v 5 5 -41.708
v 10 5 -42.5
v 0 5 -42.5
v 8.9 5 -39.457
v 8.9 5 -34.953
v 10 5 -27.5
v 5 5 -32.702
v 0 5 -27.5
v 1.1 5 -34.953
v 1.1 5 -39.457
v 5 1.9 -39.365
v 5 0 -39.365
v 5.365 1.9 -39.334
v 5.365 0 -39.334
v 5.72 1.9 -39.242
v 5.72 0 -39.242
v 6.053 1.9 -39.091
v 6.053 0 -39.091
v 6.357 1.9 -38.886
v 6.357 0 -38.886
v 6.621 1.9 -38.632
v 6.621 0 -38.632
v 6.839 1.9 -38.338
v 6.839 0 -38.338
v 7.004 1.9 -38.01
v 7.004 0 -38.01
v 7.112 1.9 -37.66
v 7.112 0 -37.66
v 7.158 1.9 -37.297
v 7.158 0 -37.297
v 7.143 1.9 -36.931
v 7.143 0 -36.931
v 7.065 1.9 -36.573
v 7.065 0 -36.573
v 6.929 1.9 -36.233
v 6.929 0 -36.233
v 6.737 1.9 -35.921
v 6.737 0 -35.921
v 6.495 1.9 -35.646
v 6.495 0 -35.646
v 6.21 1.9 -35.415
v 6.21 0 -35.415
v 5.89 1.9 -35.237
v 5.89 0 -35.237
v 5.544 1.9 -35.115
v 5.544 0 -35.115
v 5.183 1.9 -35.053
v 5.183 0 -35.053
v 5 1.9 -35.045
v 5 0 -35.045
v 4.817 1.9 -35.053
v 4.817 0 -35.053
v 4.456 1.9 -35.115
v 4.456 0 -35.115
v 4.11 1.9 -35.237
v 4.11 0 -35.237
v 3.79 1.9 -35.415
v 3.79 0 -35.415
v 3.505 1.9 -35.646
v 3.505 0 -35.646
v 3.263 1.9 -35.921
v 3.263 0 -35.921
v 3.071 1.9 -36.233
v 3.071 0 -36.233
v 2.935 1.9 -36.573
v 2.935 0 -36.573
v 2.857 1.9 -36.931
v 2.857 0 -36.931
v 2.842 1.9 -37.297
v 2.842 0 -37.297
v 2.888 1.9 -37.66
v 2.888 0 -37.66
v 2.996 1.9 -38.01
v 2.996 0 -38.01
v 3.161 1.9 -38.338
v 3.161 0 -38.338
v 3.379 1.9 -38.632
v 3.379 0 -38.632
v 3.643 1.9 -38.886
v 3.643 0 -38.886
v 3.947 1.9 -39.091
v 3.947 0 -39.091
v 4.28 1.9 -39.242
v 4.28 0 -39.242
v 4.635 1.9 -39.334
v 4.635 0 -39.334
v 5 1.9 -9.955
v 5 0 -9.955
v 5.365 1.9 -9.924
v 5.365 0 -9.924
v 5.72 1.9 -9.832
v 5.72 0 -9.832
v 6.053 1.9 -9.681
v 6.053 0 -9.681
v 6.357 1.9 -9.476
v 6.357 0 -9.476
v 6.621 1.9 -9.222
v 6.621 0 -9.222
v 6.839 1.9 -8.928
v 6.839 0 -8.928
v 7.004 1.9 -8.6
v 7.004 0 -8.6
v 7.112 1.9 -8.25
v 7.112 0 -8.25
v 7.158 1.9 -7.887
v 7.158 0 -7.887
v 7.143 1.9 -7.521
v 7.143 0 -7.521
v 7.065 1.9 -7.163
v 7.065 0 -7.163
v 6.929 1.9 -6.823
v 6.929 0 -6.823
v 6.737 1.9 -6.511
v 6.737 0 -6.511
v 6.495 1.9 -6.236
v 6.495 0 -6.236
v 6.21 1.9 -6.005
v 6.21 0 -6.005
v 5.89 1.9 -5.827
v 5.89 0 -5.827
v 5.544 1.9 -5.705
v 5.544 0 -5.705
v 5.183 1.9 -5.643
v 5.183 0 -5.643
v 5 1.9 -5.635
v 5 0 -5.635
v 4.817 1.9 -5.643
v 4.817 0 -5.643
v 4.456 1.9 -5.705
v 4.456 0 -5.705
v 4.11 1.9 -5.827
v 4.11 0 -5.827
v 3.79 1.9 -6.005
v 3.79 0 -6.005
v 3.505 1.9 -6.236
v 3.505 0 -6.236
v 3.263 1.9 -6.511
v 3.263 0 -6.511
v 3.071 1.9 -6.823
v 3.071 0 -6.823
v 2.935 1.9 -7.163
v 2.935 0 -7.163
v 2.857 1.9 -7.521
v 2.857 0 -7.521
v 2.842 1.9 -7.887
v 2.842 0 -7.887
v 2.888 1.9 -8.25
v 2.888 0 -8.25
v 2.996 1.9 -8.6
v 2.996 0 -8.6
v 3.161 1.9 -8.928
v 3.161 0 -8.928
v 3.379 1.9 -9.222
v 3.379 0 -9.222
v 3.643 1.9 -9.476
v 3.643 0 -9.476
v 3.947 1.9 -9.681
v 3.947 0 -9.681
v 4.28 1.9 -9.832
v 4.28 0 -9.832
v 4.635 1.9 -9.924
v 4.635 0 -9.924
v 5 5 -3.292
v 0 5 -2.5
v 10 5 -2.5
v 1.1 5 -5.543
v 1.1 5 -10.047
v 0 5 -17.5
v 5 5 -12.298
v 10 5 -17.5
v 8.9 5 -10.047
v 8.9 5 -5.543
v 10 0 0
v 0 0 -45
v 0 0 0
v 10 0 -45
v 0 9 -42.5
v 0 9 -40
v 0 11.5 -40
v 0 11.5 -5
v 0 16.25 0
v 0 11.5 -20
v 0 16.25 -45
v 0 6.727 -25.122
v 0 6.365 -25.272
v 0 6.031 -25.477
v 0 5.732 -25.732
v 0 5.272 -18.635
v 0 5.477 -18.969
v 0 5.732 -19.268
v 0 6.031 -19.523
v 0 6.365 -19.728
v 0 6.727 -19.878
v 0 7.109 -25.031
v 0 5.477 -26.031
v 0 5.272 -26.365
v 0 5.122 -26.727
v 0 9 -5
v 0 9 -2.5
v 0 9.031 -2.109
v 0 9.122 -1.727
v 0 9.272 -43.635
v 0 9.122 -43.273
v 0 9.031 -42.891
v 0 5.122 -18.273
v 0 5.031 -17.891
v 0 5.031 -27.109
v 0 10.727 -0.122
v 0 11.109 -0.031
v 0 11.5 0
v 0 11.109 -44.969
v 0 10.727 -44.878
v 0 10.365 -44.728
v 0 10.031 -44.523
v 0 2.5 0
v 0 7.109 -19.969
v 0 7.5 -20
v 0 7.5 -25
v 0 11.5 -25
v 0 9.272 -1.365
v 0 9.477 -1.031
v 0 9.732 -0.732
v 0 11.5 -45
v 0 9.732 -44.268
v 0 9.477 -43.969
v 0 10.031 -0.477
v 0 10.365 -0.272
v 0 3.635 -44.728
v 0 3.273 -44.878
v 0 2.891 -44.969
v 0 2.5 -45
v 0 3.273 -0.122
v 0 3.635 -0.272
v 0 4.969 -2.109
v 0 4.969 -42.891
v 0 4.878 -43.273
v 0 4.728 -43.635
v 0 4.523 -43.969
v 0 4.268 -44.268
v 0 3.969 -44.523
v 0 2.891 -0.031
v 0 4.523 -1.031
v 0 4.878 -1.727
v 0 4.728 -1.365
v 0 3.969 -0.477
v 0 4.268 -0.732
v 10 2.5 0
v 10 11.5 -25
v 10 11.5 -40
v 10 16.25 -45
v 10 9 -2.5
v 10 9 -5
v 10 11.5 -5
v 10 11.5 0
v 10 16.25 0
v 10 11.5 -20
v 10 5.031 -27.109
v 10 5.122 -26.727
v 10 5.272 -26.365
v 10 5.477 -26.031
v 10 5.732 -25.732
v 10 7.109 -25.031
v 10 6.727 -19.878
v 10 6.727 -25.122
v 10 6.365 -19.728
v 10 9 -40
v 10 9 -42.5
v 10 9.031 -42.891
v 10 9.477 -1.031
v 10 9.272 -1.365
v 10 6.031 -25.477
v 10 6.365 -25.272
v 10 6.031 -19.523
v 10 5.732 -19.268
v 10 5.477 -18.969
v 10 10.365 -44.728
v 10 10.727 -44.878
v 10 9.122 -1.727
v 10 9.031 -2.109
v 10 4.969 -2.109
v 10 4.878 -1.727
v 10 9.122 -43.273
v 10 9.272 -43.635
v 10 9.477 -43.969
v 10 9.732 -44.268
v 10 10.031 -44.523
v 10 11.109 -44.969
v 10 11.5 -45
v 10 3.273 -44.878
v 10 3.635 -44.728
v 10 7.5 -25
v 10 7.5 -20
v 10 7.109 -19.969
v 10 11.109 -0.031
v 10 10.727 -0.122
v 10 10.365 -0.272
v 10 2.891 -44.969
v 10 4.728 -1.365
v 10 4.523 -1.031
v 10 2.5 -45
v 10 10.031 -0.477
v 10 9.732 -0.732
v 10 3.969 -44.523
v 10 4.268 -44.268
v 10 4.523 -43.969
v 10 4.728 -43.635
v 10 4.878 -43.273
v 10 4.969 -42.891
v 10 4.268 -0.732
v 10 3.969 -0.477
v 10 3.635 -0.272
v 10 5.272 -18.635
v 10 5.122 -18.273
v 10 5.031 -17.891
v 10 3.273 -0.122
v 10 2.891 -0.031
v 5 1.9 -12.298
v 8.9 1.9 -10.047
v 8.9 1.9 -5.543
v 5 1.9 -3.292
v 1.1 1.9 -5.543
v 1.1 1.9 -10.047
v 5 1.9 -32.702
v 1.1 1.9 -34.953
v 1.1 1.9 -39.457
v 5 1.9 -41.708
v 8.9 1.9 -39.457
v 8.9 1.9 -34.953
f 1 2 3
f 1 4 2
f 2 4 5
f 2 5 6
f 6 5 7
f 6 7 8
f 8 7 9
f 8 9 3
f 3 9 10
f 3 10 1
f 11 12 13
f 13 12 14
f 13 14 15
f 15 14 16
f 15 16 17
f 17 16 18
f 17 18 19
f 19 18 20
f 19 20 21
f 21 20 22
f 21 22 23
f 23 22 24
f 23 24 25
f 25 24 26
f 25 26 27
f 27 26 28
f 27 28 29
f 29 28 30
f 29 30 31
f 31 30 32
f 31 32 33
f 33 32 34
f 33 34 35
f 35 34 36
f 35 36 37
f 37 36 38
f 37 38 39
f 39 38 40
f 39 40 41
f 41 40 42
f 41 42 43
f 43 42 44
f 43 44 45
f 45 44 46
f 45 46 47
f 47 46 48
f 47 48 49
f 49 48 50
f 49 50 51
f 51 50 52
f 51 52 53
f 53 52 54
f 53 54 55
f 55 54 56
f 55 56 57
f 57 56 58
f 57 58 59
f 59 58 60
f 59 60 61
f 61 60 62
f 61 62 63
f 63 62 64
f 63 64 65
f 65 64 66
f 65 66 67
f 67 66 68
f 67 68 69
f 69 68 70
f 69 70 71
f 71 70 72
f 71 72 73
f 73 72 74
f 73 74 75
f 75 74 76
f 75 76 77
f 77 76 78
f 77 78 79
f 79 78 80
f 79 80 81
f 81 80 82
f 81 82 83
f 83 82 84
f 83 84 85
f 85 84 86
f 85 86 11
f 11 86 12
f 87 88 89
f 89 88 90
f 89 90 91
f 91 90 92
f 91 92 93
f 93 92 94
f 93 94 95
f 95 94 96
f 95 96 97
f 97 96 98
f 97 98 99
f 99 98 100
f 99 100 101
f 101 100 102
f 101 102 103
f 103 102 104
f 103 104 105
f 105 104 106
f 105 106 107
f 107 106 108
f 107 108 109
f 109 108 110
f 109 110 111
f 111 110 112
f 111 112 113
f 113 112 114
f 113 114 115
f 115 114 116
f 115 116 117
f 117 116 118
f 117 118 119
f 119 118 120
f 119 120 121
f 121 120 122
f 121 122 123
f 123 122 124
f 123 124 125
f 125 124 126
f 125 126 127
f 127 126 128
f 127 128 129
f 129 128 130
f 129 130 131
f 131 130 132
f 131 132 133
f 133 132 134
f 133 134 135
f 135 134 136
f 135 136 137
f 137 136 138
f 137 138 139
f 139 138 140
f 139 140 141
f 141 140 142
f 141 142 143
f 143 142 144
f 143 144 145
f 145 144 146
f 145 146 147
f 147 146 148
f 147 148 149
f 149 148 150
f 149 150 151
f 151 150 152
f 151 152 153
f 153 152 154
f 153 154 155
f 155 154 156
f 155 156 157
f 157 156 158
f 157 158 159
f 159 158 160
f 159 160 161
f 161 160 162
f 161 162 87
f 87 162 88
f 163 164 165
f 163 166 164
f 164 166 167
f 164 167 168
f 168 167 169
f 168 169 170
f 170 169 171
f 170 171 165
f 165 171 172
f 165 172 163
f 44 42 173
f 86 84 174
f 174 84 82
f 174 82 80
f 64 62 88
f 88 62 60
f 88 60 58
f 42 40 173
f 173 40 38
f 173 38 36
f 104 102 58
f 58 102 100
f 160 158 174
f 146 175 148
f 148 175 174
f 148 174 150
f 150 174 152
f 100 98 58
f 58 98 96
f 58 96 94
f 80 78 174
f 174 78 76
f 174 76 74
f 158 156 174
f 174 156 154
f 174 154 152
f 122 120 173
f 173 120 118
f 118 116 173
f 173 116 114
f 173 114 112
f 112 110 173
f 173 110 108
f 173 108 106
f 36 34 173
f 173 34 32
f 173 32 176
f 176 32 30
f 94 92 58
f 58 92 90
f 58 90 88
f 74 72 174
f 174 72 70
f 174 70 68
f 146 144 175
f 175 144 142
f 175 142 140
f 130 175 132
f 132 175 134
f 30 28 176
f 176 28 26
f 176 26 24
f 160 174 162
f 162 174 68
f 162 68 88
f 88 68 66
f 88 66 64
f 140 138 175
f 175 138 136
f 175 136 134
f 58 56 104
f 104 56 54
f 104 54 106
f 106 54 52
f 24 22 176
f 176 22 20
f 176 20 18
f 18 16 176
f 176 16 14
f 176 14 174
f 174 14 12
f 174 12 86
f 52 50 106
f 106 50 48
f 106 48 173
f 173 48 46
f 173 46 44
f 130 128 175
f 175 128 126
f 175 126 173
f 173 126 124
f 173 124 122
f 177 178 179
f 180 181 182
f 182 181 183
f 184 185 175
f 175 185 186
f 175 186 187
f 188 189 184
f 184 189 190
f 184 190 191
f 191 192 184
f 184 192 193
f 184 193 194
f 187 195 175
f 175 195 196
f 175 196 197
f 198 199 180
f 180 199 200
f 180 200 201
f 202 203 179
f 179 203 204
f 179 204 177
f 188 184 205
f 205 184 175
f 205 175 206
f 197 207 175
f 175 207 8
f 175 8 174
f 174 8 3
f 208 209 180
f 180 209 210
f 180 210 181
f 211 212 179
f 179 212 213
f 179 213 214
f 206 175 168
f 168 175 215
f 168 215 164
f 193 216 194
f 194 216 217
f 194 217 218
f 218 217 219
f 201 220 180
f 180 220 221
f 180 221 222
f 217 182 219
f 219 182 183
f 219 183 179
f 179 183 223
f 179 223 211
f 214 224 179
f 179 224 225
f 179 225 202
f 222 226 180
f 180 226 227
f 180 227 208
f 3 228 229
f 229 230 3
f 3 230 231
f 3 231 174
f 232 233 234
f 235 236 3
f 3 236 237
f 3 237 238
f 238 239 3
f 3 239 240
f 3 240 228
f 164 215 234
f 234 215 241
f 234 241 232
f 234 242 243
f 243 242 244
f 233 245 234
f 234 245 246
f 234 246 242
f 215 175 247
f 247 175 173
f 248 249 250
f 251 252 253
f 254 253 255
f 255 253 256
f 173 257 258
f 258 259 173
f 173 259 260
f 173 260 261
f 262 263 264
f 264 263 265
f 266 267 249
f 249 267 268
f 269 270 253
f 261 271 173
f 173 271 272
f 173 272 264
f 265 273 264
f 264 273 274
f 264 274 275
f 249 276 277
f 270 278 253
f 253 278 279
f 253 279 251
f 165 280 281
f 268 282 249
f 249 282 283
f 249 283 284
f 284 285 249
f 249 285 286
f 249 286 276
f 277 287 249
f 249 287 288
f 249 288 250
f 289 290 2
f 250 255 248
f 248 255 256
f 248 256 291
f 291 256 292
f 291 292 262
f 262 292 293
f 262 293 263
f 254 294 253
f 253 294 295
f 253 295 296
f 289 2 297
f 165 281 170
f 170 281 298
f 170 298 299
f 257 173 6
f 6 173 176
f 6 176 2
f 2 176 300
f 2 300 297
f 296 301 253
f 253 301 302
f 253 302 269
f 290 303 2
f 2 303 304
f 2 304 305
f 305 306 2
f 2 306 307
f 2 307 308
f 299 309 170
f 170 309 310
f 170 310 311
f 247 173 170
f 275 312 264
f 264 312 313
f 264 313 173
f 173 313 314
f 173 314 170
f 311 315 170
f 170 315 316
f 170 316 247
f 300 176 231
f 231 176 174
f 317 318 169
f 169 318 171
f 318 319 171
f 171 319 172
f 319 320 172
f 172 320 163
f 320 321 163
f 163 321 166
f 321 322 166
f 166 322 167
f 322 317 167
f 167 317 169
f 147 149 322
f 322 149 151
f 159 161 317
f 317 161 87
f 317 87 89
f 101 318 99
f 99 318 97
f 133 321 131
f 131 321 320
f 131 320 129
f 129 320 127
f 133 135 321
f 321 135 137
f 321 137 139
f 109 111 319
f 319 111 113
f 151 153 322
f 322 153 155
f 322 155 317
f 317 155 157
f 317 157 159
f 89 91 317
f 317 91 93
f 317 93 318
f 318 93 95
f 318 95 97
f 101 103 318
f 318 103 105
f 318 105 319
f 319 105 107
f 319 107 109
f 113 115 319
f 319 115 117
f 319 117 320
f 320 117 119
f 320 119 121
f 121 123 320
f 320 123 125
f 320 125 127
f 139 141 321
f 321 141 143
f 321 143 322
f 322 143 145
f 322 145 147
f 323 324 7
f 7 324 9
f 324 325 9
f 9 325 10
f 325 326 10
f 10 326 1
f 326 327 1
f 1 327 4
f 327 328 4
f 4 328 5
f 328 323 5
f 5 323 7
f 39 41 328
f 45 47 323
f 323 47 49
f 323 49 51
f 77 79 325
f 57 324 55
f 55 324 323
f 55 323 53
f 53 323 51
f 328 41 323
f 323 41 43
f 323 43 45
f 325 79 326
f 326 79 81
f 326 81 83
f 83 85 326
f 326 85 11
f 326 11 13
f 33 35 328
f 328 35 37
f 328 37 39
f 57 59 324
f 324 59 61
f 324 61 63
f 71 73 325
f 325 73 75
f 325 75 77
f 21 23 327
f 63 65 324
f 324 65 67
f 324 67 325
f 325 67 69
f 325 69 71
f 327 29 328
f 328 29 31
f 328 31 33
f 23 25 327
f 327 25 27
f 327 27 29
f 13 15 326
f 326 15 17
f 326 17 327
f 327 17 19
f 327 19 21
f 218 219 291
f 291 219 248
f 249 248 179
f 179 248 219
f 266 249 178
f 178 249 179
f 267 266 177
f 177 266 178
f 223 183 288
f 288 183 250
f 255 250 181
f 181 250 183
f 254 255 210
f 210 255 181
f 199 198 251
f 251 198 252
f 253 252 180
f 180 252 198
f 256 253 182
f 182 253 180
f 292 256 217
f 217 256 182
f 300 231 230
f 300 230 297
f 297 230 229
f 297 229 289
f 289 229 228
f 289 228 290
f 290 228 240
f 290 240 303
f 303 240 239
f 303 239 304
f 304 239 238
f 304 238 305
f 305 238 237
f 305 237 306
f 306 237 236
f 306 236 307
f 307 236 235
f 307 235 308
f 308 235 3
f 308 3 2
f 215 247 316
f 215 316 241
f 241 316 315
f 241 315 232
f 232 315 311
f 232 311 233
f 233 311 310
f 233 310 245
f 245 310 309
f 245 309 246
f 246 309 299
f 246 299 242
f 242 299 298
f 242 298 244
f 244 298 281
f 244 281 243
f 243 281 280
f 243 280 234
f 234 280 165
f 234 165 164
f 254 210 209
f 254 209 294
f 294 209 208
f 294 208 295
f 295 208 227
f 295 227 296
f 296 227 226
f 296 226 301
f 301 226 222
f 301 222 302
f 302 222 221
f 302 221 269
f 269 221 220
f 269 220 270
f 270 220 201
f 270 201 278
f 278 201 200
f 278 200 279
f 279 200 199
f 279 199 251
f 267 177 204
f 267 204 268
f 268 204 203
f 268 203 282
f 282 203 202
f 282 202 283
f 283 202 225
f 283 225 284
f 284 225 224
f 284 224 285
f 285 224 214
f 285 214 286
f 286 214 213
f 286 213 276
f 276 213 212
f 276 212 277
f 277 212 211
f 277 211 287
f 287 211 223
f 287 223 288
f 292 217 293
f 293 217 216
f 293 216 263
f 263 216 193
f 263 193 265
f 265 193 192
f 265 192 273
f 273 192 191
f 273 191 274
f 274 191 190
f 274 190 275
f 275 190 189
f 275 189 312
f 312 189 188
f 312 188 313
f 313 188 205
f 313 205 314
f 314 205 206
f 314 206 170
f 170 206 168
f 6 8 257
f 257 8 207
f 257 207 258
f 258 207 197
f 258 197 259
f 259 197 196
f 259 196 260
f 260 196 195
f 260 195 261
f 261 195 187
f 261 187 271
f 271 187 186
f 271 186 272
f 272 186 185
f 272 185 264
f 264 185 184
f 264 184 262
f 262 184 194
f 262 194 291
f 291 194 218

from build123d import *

# Parameters (mm, degrees)
SKETCH1_W           = 10
SKETCH1_H           = 45
SKETCH1_R           = 2.16
BOSS_EXTRUDE1_DEPTH = 5
CUT_EXTRUDE1_DEPTH  = 3.1
BOSS_EXTRUDE2_DEPTH = 10
FILLET1_R           = 2.5


with BuildPart() as part:
    # Sketch1 → Boss-Extrude1 (new body)
    with BuildSketch(Plane(origin=(0, 0, 0), x_dir=(1, 0, 0), z_dir=(0, 1, 0))):
        with Locations((5, 22.5)):
            Rectangle(SKETCH1_W, SKETCH1_H)
        with Locations(Location((5, 37.205, 0), (0, 0, 270))):
            Circle(SKETCH1_R, mode=Mode.SUBTRACT)
        with Locations(Location((5, 7.795, 0), (0, 0, 270))):
            Circle(SKETCH1_R, mode=Mode.SUBTRACT)
    extrude(amount=BOSS_EXTRUDE1_DEPTH)

    # Sketch2 → Cut-Extrude1 (cut)
    with BuildSketch(Plane(origin=(0, 5, 0), x_dir=(1, 0, 0), z_dir=(0, 1, 0))):
        Polygon((5, 32.7016679), (8.9, 34.95333395), (8.9, 39.45666605), (5, 41.7083321), (1.1, 39.45666605), (1.1, 34.95333395), align=None)
        Polygon((5, 12.2983321), (1.1, 10.04666605), (1.1, 5.54333395), (5, 3.2916679), (8.9, 5.54333395), (8.9, 10.04666605), align=None)
    extrude(amount=-CUT_EXTRUDE1_DEPTH, mode=Mode.SUBTRACT)

    # Sketch3 → Boss-Extrude2 (add, through all)
    with BuildSketch(Plane.ZY):
        Polygon((-25, 5), (-25, 11.5), (-40, 11.5), (-40, 9), (-45, 9), (-45, 16.25), (0, 16.25), (0, 9), (-5, 9), (-5, 11.5), (-20, 11.5), (-20, 5), align=None)
    extrude(amount=-BOSS_EXTRUDE2_DEPTH)

    # Fillet1
    fillet1_edges = [part.edges().sort_by_distance(p)[0] for p in [
        (5, 5, -45),
        (5, 5, -20),
        (5, 5, -25),
        (5, 9, -45),
        (5, 9, 0),
        (5, 5, 0),
    ]]
    fillet(fillet1_edges, radius=FILLET1_R)


solid = part.part
